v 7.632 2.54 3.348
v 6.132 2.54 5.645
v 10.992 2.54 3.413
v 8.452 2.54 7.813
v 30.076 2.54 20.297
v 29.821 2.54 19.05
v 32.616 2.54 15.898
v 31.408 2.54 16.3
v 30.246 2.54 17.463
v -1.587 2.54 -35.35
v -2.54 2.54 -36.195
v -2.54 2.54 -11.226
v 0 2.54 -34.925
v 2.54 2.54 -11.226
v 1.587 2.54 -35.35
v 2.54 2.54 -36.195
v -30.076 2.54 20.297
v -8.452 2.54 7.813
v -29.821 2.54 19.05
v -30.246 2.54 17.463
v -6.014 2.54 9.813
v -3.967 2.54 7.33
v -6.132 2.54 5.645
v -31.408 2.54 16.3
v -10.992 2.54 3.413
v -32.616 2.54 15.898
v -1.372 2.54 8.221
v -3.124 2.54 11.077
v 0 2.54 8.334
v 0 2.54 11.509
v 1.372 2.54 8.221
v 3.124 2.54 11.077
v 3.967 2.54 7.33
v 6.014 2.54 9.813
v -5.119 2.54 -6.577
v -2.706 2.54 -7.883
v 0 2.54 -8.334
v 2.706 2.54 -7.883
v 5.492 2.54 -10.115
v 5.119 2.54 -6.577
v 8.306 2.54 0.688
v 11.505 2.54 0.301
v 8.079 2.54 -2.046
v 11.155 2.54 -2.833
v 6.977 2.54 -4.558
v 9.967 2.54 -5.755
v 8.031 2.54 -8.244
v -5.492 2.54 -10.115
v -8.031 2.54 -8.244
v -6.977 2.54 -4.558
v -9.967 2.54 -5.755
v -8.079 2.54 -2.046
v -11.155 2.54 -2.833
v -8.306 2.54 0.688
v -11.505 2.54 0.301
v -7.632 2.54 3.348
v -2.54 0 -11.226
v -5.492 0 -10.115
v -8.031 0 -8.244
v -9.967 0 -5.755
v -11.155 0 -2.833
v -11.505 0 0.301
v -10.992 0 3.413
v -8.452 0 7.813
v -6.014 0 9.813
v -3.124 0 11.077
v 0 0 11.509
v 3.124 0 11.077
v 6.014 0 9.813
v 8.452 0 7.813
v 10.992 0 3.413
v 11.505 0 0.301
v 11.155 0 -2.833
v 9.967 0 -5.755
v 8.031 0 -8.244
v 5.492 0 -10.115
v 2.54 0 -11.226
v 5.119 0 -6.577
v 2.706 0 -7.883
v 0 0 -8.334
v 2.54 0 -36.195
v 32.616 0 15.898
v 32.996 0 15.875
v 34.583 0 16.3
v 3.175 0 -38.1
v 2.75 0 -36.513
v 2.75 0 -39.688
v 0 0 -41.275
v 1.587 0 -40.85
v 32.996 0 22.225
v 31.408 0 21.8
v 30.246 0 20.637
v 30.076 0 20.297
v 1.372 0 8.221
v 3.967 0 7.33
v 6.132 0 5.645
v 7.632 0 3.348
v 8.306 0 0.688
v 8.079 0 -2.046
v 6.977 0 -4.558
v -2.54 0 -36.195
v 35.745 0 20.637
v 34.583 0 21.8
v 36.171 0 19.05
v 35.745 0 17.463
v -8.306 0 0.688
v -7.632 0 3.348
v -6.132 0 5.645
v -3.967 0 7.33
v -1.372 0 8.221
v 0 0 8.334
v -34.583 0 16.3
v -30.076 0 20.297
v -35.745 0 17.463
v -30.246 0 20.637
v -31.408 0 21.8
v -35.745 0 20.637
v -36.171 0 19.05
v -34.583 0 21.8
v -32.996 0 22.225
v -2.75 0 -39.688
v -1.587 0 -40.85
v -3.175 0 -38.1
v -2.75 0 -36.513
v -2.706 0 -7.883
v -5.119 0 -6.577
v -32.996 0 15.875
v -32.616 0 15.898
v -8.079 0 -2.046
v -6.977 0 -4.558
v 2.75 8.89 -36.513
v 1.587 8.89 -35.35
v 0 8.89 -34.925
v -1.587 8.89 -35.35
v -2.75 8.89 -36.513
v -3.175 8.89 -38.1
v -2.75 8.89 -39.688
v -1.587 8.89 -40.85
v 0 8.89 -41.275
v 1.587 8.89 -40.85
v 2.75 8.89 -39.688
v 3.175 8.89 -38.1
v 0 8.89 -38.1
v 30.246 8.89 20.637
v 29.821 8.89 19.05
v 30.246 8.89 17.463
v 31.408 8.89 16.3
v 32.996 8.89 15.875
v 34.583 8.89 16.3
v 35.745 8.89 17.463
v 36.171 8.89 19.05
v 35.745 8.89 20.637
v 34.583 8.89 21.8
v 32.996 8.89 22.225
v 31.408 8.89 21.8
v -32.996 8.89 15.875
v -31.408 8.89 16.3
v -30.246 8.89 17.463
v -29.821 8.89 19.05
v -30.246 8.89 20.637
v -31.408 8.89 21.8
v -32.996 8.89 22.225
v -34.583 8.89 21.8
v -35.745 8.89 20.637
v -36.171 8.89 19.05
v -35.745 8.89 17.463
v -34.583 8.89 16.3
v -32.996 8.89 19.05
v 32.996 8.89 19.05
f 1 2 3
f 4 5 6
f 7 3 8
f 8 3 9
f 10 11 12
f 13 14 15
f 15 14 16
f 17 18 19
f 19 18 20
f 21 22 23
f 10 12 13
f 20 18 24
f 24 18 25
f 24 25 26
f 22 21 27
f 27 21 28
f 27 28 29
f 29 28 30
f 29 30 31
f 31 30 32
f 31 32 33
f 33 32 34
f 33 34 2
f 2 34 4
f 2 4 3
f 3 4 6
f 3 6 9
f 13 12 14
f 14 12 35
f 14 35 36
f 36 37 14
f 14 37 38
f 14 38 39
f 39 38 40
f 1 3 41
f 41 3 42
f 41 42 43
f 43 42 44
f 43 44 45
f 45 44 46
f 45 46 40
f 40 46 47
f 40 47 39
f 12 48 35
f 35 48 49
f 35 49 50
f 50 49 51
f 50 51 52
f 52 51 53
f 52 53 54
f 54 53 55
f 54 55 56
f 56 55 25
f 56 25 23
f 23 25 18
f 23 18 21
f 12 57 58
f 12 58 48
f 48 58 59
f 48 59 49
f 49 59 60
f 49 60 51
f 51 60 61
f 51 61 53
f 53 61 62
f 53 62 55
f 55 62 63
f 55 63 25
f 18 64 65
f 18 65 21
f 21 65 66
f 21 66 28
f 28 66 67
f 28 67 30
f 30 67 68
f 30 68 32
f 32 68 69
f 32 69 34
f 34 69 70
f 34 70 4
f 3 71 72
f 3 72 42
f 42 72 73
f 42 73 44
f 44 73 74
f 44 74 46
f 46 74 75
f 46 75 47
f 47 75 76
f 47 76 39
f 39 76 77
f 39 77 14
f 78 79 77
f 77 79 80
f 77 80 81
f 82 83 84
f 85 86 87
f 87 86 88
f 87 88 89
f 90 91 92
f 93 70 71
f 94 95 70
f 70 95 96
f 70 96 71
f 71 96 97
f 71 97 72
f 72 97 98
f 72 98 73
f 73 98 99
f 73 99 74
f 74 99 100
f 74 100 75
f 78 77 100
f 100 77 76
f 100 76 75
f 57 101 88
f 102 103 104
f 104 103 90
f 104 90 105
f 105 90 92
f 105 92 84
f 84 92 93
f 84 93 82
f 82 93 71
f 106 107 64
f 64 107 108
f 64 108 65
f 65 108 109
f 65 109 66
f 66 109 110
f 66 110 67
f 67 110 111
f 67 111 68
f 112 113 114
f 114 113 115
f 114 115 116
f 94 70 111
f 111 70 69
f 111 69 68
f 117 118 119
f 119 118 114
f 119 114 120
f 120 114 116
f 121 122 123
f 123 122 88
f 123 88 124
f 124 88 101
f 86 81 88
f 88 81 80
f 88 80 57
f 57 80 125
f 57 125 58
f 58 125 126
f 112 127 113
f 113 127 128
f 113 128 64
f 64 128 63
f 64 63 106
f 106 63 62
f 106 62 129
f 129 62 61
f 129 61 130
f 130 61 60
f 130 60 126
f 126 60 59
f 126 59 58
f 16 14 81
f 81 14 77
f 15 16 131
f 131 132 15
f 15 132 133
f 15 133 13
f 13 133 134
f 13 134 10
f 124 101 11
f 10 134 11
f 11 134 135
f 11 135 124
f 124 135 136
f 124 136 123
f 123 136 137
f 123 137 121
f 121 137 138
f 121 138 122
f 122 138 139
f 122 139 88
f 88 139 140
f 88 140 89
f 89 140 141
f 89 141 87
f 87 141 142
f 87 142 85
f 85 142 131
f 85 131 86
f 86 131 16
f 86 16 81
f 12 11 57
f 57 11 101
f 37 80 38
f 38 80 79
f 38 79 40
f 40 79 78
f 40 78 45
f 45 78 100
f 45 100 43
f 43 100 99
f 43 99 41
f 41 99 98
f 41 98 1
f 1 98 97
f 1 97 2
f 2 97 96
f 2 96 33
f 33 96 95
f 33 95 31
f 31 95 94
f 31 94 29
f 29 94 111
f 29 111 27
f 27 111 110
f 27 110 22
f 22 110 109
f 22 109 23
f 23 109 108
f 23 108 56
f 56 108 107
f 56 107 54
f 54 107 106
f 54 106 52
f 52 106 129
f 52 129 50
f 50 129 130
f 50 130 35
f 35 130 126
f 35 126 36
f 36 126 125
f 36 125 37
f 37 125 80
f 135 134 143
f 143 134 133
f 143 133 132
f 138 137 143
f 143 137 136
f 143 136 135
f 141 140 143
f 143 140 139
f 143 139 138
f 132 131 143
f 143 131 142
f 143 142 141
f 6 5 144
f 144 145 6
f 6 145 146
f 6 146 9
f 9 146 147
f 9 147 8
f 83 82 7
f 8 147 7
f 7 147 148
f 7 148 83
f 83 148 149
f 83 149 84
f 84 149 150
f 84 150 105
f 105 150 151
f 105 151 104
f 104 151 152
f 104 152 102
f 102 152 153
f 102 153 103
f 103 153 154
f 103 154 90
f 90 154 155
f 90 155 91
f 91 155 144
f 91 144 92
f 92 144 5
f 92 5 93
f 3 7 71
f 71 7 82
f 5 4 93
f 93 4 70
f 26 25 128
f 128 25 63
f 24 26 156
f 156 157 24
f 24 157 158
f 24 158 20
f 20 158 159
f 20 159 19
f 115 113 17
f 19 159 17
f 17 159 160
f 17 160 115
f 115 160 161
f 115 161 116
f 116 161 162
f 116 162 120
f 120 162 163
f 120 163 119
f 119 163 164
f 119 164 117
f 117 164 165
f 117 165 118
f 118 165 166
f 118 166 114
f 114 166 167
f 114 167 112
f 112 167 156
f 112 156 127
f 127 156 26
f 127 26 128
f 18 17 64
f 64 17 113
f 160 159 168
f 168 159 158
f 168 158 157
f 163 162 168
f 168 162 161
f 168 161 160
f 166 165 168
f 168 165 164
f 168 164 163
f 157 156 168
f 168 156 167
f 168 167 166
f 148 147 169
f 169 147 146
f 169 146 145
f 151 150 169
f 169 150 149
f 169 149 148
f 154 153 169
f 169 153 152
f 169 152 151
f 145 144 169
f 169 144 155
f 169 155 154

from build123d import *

# Parameters (mm, degrees)
SKETCH1_R           = 8.334375
BOSS_EXTRUDE1_DEPTH = 2.54
SKETCH3_R           = 3.175
BOSS_EXTRUDE2_DEPTH = 6.35
CIRPATTERN1_COUNT   = 3


with BuildPart() as part:
    # Sketch1 → Boss-Extrude1 (new body)
    with BuildSketch(Plane(origin=(0, 0, 0), x_dir=(1, 0, 0), z_dir=(0, 1, 0))):
        with BuildLine():
            Line((2.54, 11.225600781), (2.54, 36.195))
            ThreePointArc((2.54, 36.195), (0, 41.275), (-2.54, 36.195))
            Line((-2.54, 36.195), (-2.54, 11.225600781))
            ThreePointArc((-2.54, 11.225600781), (0, -11.509375), (2.54, 11.225600781))
        make_face()
        with Locations(Location((0, 0, 0), (0, 0, 270))):
            Circle(SKETCH1_R, mode=Mode.SUBTRACT)
    boss_extrude1 = extrude(amount=BOSS_EXTRUDE1_DEPTH)

    # Sketch3 → Boss-Extrude2 (add)
    with BuildSketch(Plane(origin=(0, 2.54, 0), x_dir=(1, 0, 0), z_dir=(0, 1, 0))):
        with Locations(Location((0, 38.1, 0), (0, 0, 216.869897646))):
            Circle(SKETCH3_R)
    boss_extrude2 = extrude(amount=BOSS_EXTRUDE2_DEPTH)

    # CirPattern1: Boss-Extrude1, Boss-Extrude2 ×3 about axis
    cirpattern1_axis = Axis((0, 0, 0), (0, 1, 0))
    add([boss_extrude1.rotate(cirpattern1_axis, i * 360 / CIRPATTERN1_COUNT) for i in range(1, CIRPATTERN1_COUNT)])
    add([boss_extrude2.rotate(cirpattern1_axis, i * 360 / CIRPATTERN1_COUNT) for i in range(1, CIRPATTERN1_COUNT)])


solid = part.part
